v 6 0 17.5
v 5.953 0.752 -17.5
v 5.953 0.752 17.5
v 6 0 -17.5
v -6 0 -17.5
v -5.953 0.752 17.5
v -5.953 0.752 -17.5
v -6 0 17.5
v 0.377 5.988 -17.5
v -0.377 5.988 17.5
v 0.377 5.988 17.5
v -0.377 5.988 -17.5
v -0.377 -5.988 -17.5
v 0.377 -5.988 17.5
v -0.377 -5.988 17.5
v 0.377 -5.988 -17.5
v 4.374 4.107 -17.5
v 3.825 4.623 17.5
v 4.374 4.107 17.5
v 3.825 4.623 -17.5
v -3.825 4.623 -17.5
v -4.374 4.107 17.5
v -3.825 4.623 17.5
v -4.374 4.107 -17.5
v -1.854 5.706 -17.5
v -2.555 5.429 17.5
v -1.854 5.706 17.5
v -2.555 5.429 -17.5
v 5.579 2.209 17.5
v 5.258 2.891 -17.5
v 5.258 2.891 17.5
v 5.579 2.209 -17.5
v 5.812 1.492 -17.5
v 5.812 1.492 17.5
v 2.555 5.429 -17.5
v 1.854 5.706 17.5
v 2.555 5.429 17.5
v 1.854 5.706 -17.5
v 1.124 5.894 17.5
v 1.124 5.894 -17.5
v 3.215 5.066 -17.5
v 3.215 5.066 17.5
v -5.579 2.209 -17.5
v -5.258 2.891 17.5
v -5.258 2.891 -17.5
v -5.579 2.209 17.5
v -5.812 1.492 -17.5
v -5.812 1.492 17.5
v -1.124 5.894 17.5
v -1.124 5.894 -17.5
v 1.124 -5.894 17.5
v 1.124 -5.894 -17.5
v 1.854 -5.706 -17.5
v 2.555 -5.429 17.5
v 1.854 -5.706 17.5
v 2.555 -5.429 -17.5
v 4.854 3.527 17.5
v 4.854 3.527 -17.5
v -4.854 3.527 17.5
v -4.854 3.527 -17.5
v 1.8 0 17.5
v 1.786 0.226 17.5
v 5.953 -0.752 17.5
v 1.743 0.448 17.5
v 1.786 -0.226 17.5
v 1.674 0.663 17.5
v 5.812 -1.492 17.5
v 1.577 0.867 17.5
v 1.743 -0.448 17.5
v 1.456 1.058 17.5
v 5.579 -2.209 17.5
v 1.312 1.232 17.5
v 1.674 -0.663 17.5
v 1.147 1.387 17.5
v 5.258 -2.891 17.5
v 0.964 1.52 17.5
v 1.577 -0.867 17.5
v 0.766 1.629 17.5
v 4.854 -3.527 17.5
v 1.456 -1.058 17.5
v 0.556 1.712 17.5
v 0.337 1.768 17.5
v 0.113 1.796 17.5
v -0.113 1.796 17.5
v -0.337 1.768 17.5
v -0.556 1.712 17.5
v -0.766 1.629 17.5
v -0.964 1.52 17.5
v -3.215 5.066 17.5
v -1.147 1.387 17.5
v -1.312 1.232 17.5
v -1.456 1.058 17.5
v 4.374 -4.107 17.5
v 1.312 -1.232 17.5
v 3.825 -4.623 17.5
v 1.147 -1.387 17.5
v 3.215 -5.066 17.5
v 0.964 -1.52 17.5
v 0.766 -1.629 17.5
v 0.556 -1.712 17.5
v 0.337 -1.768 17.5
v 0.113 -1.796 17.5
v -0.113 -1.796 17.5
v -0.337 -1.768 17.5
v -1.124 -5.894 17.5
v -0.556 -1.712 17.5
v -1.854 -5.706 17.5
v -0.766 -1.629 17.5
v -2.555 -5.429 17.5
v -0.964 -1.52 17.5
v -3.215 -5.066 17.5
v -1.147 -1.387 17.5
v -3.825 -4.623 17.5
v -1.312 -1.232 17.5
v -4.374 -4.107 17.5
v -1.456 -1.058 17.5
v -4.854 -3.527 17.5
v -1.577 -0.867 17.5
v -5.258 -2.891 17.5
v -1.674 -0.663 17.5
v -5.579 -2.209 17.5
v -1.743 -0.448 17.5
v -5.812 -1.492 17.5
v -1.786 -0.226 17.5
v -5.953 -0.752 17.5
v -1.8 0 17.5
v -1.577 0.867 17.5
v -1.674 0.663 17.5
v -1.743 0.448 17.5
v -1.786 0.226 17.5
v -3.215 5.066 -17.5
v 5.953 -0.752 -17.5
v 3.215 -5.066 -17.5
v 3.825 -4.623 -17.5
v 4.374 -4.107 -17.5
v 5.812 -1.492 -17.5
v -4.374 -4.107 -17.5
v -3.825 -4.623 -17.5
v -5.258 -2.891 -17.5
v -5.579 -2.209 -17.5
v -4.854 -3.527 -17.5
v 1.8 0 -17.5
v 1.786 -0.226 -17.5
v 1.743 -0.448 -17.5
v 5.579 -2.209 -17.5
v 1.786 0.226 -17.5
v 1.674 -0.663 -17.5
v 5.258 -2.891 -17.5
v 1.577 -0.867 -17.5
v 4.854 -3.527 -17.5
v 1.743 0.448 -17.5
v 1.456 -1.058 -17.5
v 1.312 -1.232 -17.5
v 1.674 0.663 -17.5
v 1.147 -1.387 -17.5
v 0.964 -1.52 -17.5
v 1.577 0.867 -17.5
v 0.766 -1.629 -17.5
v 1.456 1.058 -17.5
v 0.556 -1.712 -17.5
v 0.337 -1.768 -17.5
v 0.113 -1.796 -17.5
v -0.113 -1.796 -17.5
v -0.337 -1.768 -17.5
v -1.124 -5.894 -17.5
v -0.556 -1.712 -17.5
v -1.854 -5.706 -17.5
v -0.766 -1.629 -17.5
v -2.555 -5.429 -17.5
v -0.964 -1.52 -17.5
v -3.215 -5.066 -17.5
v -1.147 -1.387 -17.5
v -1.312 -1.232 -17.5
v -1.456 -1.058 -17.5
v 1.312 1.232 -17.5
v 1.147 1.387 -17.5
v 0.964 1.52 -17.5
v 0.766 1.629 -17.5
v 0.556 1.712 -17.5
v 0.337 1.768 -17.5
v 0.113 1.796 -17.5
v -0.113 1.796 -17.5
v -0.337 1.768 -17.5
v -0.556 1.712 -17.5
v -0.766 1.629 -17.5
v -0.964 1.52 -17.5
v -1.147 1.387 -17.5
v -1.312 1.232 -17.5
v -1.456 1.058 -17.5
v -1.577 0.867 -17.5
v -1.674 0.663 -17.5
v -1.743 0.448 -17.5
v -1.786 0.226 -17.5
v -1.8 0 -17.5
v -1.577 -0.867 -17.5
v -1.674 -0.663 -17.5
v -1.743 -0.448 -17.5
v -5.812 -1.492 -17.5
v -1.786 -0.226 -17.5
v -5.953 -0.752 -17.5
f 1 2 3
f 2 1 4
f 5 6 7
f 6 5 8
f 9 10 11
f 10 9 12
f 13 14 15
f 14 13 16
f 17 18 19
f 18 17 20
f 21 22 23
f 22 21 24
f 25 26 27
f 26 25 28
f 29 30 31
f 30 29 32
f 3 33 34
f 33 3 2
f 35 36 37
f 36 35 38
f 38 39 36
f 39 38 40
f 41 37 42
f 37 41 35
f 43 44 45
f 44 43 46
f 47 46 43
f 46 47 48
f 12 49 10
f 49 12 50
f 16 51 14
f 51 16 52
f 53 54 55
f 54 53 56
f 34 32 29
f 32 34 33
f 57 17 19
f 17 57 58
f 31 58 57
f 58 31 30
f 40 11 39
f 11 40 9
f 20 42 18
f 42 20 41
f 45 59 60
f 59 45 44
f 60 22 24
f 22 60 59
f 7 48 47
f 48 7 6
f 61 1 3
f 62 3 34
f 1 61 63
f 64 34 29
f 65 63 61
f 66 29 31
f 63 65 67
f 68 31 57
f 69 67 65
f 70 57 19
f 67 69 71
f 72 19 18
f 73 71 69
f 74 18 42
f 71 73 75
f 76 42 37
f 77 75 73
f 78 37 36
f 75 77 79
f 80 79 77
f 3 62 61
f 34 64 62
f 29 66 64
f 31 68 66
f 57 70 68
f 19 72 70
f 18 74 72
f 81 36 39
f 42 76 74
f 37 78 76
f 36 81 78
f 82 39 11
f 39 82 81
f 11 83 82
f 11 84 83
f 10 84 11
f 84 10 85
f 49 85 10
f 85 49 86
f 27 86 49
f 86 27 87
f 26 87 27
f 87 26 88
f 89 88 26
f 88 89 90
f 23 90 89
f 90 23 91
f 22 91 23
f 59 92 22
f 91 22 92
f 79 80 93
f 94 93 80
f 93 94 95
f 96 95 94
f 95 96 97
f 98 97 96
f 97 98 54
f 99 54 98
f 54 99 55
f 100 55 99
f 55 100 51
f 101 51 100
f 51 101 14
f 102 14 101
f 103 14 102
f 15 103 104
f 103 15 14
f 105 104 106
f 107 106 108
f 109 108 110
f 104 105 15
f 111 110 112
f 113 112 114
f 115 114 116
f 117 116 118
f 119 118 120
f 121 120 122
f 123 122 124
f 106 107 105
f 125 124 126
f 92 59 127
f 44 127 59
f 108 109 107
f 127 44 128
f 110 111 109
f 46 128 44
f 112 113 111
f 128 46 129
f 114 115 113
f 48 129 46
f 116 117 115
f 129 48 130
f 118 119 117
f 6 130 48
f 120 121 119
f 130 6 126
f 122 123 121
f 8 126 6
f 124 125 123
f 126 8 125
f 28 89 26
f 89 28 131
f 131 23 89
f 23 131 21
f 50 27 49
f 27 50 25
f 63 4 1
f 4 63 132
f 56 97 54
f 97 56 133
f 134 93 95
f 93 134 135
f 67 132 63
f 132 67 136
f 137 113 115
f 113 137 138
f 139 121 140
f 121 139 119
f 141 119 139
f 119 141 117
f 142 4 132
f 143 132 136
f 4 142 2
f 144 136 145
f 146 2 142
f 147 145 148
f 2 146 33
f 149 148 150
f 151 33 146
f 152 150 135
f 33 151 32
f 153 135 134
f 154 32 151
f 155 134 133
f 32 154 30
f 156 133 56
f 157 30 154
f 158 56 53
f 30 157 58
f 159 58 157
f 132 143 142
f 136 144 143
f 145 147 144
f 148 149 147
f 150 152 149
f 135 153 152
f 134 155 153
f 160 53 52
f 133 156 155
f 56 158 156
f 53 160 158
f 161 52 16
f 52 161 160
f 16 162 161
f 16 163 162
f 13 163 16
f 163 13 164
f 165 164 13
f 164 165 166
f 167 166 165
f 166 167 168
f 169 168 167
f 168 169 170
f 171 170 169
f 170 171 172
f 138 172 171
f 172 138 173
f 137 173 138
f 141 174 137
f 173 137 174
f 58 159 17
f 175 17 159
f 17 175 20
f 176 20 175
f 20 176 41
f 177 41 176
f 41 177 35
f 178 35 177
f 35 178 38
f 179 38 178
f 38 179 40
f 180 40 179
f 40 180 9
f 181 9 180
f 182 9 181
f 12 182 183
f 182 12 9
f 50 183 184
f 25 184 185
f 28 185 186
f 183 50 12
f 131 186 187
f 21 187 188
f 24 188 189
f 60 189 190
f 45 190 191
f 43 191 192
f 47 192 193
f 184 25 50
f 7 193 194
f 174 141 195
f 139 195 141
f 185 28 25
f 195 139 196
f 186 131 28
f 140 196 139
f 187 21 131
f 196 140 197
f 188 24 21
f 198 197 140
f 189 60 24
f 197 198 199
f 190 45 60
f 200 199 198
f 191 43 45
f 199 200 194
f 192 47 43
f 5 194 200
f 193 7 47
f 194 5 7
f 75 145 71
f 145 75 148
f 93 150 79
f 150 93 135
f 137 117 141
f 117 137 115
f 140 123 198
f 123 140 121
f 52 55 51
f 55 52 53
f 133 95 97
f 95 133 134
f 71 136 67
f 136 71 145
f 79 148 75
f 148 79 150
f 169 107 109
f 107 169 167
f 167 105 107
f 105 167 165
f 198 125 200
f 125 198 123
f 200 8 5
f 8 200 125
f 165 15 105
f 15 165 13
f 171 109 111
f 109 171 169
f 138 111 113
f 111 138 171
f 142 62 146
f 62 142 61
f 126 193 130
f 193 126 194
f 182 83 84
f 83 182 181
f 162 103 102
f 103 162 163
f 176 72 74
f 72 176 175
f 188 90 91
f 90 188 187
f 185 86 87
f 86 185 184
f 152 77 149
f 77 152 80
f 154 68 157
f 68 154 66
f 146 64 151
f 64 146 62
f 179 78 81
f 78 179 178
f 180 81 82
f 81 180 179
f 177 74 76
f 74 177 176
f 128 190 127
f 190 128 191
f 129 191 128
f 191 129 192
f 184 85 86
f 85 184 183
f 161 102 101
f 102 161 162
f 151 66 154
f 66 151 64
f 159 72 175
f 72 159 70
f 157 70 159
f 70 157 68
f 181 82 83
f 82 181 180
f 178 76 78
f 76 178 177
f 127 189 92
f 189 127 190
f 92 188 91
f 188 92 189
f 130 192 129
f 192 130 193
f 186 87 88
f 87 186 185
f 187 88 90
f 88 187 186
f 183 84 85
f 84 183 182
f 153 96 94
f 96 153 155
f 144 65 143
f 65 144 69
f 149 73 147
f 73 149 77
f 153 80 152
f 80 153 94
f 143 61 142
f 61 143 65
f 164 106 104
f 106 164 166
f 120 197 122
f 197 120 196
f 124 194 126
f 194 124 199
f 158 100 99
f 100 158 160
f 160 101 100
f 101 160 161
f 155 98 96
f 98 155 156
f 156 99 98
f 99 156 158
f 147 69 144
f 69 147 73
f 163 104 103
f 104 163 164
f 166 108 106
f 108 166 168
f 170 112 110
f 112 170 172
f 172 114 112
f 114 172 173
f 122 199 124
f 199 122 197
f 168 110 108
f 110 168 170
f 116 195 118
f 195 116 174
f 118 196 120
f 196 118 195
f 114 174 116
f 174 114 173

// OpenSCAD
$fn = 50;


difference() {
	union() {
		translate(v = [0, 0, -17.5000000000]) {
			cylinder(h = 35, r = 6.0000000000);
		}
	}
	union() {
		translate(v = [0, 0, -100.0000000000]) {
			cylinder(h = 200, r = 1.8000000000);
		}
	}
}
